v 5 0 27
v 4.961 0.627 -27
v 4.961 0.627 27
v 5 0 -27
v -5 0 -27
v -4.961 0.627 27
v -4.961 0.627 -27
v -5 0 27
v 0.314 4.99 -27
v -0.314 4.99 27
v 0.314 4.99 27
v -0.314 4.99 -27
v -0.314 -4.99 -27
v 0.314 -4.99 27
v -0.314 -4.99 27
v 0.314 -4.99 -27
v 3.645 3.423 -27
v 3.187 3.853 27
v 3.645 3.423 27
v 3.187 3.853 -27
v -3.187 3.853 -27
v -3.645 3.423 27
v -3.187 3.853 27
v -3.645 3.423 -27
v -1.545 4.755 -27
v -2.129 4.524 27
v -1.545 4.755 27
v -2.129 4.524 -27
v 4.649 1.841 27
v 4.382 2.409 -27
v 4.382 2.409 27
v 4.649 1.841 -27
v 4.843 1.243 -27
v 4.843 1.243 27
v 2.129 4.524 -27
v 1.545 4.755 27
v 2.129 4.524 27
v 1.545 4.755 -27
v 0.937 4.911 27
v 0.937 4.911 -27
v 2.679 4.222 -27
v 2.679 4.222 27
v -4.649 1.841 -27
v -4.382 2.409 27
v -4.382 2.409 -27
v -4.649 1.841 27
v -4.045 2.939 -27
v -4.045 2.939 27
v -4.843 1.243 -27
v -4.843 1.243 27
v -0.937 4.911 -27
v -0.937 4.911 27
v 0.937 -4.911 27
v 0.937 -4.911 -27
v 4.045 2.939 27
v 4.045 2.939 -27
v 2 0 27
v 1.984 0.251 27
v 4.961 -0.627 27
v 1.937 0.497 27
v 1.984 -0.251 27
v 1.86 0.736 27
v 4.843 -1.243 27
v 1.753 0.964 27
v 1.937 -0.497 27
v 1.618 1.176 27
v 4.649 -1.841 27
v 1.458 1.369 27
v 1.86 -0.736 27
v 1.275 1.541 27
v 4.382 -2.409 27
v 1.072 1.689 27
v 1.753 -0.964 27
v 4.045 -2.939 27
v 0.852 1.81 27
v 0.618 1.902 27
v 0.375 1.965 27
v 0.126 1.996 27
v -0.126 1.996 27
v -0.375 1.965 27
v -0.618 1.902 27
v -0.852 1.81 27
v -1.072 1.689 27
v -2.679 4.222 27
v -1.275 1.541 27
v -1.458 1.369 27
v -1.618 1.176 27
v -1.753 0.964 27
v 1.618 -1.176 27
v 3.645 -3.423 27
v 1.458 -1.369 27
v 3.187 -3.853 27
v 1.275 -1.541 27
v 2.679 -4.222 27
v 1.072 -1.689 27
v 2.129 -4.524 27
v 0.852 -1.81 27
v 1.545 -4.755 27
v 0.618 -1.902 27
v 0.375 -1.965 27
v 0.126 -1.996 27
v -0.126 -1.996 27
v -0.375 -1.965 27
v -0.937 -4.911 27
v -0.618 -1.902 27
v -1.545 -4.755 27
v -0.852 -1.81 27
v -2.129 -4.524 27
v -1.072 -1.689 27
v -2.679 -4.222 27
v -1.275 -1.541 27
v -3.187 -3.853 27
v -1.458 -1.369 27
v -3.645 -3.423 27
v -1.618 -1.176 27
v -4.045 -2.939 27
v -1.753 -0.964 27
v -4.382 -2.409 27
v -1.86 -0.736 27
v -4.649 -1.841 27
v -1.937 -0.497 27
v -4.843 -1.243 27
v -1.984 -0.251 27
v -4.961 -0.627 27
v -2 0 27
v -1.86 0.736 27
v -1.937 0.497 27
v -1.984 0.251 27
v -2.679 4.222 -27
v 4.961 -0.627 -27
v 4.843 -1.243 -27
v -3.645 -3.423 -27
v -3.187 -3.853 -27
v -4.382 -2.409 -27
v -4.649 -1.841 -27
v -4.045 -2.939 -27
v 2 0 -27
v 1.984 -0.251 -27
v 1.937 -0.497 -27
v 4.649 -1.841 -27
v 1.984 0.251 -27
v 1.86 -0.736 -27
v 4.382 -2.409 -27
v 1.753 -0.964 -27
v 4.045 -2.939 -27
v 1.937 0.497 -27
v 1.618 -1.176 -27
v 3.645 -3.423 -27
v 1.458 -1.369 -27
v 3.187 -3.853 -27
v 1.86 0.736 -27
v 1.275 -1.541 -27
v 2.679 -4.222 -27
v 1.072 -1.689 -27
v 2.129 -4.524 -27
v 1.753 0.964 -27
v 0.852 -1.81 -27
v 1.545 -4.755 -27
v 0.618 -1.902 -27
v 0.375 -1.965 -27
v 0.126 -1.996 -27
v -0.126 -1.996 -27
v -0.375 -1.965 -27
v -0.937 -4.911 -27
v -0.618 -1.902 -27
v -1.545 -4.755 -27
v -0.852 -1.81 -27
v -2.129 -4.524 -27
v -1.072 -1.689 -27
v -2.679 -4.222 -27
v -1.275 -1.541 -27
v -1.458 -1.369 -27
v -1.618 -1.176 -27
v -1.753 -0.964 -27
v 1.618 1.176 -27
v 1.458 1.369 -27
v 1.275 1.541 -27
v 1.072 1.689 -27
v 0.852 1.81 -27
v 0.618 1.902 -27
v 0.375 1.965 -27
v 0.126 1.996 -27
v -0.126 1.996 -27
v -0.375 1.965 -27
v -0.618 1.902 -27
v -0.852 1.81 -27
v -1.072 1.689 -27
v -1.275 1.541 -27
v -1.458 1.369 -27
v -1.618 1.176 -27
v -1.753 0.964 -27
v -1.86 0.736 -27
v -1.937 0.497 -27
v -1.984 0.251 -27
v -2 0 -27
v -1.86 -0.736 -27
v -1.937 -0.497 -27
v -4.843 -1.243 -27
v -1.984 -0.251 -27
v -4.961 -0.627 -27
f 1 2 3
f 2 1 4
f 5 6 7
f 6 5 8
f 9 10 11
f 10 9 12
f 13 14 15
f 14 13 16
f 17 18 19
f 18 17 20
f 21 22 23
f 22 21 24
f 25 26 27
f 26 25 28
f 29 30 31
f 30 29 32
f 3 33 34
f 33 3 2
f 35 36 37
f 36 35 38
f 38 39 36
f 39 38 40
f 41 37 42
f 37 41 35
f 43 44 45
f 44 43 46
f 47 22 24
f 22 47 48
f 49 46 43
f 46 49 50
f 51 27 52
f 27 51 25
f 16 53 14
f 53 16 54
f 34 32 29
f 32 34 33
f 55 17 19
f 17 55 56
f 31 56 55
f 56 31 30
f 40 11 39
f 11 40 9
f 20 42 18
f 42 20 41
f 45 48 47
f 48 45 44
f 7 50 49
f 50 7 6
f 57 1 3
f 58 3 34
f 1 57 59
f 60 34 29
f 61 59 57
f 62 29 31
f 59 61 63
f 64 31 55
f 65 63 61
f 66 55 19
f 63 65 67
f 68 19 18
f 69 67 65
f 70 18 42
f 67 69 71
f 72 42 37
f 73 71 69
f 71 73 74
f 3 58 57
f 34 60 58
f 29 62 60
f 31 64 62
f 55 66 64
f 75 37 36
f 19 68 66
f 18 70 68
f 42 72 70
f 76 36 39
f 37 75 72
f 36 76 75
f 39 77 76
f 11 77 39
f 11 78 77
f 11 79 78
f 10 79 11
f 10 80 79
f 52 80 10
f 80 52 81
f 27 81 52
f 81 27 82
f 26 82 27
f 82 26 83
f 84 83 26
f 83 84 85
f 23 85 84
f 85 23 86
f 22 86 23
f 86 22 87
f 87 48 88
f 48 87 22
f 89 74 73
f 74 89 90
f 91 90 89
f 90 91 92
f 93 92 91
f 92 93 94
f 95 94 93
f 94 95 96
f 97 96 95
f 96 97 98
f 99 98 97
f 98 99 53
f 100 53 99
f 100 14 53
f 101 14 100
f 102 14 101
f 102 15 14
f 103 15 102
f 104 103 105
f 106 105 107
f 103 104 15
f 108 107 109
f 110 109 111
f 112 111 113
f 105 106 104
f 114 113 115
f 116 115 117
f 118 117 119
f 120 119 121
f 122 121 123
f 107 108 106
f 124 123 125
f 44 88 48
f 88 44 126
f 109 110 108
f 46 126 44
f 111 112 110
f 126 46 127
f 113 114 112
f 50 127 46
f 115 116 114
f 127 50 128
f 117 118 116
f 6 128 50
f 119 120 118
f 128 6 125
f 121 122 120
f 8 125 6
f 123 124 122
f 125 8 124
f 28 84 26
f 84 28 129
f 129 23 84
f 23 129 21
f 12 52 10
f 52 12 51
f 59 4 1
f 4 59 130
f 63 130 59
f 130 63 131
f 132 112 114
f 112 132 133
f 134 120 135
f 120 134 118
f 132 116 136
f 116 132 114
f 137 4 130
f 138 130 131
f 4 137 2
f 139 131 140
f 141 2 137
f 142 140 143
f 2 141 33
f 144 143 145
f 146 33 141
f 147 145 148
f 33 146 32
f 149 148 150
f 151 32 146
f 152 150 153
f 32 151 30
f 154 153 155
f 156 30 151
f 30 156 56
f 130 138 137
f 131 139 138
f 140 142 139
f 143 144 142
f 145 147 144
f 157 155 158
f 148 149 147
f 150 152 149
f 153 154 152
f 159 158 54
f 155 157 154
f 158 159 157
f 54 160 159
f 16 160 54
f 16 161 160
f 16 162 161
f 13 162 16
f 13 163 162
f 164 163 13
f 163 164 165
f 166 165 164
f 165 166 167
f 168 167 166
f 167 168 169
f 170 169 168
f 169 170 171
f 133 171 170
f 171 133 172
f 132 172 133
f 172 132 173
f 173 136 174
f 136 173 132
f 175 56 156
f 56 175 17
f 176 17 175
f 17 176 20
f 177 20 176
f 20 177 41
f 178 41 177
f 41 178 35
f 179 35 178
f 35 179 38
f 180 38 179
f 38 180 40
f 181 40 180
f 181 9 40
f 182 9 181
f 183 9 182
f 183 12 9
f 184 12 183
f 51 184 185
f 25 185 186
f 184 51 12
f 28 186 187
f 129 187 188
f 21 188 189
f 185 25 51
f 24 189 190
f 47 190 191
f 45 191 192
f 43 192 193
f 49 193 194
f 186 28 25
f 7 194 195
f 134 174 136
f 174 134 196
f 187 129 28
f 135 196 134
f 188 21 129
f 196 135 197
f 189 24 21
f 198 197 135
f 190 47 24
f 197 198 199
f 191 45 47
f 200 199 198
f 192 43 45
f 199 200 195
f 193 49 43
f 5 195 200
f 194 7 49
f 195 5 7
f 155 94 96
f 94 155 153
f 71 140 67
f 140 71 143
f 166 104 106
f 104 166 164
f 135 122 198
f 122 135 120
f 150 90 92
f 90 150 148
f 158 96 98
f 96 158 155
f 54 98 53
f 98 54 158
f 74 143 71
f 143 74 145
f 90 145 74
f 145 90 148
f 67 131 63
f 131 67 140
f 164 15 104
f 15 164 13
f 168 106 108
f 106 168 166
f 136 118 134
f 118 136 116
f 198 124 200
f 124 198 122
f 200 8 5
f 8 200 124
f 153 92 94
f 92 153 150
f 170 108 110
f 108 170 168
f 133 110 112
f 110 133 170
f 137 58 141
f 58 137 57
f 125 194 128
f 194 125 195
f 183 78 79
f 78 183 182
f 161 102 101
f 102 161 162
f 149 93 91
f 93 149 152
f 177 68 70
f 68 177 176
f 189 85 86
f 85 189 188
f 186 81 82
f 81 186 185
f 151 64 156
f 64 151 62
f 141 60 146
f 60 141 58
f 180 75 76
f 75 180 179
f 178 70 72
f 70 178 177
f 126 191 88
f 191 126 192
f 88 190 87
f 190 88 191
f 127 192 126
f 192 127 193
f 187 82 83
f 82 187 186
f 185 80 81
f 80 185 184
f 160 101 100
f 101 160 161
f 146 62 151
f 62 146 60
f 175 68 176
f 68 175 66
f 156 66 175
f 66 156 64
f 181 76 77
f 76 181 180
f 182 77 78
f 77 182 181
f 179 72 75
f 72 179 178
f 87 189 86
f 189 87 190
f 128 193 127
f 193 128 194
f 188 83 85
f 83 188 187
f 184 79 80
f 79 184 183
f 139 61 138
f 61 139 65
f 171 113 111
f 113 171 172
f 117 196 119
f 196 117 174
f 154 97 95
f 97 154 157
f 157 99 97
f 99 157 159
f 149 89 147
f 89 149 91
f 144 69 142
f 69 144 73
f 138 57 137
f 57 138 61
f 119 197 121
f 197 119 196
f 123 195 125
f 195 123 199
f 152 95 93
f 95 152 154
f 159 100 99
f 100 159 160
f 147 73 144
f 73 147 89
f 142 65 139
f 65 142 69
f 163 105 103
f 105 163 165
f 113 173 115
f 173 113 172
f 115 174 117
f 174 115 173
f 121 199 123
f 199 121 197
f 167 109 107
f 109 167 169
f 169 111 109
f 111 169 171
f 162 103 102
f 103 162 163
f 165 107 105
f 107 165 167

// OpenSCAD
$fn = 50;


difference() {
	union() {
		translate(v = [0, 0, -27.0000000000]) {
			cylinder(h = 54, r = 5.0000000000);
		}
	}
	union() {
		translate(v = [0, 0, -100.0000000000]) {
			cylinder(h = 200, r = 2);
		}
	}
}
